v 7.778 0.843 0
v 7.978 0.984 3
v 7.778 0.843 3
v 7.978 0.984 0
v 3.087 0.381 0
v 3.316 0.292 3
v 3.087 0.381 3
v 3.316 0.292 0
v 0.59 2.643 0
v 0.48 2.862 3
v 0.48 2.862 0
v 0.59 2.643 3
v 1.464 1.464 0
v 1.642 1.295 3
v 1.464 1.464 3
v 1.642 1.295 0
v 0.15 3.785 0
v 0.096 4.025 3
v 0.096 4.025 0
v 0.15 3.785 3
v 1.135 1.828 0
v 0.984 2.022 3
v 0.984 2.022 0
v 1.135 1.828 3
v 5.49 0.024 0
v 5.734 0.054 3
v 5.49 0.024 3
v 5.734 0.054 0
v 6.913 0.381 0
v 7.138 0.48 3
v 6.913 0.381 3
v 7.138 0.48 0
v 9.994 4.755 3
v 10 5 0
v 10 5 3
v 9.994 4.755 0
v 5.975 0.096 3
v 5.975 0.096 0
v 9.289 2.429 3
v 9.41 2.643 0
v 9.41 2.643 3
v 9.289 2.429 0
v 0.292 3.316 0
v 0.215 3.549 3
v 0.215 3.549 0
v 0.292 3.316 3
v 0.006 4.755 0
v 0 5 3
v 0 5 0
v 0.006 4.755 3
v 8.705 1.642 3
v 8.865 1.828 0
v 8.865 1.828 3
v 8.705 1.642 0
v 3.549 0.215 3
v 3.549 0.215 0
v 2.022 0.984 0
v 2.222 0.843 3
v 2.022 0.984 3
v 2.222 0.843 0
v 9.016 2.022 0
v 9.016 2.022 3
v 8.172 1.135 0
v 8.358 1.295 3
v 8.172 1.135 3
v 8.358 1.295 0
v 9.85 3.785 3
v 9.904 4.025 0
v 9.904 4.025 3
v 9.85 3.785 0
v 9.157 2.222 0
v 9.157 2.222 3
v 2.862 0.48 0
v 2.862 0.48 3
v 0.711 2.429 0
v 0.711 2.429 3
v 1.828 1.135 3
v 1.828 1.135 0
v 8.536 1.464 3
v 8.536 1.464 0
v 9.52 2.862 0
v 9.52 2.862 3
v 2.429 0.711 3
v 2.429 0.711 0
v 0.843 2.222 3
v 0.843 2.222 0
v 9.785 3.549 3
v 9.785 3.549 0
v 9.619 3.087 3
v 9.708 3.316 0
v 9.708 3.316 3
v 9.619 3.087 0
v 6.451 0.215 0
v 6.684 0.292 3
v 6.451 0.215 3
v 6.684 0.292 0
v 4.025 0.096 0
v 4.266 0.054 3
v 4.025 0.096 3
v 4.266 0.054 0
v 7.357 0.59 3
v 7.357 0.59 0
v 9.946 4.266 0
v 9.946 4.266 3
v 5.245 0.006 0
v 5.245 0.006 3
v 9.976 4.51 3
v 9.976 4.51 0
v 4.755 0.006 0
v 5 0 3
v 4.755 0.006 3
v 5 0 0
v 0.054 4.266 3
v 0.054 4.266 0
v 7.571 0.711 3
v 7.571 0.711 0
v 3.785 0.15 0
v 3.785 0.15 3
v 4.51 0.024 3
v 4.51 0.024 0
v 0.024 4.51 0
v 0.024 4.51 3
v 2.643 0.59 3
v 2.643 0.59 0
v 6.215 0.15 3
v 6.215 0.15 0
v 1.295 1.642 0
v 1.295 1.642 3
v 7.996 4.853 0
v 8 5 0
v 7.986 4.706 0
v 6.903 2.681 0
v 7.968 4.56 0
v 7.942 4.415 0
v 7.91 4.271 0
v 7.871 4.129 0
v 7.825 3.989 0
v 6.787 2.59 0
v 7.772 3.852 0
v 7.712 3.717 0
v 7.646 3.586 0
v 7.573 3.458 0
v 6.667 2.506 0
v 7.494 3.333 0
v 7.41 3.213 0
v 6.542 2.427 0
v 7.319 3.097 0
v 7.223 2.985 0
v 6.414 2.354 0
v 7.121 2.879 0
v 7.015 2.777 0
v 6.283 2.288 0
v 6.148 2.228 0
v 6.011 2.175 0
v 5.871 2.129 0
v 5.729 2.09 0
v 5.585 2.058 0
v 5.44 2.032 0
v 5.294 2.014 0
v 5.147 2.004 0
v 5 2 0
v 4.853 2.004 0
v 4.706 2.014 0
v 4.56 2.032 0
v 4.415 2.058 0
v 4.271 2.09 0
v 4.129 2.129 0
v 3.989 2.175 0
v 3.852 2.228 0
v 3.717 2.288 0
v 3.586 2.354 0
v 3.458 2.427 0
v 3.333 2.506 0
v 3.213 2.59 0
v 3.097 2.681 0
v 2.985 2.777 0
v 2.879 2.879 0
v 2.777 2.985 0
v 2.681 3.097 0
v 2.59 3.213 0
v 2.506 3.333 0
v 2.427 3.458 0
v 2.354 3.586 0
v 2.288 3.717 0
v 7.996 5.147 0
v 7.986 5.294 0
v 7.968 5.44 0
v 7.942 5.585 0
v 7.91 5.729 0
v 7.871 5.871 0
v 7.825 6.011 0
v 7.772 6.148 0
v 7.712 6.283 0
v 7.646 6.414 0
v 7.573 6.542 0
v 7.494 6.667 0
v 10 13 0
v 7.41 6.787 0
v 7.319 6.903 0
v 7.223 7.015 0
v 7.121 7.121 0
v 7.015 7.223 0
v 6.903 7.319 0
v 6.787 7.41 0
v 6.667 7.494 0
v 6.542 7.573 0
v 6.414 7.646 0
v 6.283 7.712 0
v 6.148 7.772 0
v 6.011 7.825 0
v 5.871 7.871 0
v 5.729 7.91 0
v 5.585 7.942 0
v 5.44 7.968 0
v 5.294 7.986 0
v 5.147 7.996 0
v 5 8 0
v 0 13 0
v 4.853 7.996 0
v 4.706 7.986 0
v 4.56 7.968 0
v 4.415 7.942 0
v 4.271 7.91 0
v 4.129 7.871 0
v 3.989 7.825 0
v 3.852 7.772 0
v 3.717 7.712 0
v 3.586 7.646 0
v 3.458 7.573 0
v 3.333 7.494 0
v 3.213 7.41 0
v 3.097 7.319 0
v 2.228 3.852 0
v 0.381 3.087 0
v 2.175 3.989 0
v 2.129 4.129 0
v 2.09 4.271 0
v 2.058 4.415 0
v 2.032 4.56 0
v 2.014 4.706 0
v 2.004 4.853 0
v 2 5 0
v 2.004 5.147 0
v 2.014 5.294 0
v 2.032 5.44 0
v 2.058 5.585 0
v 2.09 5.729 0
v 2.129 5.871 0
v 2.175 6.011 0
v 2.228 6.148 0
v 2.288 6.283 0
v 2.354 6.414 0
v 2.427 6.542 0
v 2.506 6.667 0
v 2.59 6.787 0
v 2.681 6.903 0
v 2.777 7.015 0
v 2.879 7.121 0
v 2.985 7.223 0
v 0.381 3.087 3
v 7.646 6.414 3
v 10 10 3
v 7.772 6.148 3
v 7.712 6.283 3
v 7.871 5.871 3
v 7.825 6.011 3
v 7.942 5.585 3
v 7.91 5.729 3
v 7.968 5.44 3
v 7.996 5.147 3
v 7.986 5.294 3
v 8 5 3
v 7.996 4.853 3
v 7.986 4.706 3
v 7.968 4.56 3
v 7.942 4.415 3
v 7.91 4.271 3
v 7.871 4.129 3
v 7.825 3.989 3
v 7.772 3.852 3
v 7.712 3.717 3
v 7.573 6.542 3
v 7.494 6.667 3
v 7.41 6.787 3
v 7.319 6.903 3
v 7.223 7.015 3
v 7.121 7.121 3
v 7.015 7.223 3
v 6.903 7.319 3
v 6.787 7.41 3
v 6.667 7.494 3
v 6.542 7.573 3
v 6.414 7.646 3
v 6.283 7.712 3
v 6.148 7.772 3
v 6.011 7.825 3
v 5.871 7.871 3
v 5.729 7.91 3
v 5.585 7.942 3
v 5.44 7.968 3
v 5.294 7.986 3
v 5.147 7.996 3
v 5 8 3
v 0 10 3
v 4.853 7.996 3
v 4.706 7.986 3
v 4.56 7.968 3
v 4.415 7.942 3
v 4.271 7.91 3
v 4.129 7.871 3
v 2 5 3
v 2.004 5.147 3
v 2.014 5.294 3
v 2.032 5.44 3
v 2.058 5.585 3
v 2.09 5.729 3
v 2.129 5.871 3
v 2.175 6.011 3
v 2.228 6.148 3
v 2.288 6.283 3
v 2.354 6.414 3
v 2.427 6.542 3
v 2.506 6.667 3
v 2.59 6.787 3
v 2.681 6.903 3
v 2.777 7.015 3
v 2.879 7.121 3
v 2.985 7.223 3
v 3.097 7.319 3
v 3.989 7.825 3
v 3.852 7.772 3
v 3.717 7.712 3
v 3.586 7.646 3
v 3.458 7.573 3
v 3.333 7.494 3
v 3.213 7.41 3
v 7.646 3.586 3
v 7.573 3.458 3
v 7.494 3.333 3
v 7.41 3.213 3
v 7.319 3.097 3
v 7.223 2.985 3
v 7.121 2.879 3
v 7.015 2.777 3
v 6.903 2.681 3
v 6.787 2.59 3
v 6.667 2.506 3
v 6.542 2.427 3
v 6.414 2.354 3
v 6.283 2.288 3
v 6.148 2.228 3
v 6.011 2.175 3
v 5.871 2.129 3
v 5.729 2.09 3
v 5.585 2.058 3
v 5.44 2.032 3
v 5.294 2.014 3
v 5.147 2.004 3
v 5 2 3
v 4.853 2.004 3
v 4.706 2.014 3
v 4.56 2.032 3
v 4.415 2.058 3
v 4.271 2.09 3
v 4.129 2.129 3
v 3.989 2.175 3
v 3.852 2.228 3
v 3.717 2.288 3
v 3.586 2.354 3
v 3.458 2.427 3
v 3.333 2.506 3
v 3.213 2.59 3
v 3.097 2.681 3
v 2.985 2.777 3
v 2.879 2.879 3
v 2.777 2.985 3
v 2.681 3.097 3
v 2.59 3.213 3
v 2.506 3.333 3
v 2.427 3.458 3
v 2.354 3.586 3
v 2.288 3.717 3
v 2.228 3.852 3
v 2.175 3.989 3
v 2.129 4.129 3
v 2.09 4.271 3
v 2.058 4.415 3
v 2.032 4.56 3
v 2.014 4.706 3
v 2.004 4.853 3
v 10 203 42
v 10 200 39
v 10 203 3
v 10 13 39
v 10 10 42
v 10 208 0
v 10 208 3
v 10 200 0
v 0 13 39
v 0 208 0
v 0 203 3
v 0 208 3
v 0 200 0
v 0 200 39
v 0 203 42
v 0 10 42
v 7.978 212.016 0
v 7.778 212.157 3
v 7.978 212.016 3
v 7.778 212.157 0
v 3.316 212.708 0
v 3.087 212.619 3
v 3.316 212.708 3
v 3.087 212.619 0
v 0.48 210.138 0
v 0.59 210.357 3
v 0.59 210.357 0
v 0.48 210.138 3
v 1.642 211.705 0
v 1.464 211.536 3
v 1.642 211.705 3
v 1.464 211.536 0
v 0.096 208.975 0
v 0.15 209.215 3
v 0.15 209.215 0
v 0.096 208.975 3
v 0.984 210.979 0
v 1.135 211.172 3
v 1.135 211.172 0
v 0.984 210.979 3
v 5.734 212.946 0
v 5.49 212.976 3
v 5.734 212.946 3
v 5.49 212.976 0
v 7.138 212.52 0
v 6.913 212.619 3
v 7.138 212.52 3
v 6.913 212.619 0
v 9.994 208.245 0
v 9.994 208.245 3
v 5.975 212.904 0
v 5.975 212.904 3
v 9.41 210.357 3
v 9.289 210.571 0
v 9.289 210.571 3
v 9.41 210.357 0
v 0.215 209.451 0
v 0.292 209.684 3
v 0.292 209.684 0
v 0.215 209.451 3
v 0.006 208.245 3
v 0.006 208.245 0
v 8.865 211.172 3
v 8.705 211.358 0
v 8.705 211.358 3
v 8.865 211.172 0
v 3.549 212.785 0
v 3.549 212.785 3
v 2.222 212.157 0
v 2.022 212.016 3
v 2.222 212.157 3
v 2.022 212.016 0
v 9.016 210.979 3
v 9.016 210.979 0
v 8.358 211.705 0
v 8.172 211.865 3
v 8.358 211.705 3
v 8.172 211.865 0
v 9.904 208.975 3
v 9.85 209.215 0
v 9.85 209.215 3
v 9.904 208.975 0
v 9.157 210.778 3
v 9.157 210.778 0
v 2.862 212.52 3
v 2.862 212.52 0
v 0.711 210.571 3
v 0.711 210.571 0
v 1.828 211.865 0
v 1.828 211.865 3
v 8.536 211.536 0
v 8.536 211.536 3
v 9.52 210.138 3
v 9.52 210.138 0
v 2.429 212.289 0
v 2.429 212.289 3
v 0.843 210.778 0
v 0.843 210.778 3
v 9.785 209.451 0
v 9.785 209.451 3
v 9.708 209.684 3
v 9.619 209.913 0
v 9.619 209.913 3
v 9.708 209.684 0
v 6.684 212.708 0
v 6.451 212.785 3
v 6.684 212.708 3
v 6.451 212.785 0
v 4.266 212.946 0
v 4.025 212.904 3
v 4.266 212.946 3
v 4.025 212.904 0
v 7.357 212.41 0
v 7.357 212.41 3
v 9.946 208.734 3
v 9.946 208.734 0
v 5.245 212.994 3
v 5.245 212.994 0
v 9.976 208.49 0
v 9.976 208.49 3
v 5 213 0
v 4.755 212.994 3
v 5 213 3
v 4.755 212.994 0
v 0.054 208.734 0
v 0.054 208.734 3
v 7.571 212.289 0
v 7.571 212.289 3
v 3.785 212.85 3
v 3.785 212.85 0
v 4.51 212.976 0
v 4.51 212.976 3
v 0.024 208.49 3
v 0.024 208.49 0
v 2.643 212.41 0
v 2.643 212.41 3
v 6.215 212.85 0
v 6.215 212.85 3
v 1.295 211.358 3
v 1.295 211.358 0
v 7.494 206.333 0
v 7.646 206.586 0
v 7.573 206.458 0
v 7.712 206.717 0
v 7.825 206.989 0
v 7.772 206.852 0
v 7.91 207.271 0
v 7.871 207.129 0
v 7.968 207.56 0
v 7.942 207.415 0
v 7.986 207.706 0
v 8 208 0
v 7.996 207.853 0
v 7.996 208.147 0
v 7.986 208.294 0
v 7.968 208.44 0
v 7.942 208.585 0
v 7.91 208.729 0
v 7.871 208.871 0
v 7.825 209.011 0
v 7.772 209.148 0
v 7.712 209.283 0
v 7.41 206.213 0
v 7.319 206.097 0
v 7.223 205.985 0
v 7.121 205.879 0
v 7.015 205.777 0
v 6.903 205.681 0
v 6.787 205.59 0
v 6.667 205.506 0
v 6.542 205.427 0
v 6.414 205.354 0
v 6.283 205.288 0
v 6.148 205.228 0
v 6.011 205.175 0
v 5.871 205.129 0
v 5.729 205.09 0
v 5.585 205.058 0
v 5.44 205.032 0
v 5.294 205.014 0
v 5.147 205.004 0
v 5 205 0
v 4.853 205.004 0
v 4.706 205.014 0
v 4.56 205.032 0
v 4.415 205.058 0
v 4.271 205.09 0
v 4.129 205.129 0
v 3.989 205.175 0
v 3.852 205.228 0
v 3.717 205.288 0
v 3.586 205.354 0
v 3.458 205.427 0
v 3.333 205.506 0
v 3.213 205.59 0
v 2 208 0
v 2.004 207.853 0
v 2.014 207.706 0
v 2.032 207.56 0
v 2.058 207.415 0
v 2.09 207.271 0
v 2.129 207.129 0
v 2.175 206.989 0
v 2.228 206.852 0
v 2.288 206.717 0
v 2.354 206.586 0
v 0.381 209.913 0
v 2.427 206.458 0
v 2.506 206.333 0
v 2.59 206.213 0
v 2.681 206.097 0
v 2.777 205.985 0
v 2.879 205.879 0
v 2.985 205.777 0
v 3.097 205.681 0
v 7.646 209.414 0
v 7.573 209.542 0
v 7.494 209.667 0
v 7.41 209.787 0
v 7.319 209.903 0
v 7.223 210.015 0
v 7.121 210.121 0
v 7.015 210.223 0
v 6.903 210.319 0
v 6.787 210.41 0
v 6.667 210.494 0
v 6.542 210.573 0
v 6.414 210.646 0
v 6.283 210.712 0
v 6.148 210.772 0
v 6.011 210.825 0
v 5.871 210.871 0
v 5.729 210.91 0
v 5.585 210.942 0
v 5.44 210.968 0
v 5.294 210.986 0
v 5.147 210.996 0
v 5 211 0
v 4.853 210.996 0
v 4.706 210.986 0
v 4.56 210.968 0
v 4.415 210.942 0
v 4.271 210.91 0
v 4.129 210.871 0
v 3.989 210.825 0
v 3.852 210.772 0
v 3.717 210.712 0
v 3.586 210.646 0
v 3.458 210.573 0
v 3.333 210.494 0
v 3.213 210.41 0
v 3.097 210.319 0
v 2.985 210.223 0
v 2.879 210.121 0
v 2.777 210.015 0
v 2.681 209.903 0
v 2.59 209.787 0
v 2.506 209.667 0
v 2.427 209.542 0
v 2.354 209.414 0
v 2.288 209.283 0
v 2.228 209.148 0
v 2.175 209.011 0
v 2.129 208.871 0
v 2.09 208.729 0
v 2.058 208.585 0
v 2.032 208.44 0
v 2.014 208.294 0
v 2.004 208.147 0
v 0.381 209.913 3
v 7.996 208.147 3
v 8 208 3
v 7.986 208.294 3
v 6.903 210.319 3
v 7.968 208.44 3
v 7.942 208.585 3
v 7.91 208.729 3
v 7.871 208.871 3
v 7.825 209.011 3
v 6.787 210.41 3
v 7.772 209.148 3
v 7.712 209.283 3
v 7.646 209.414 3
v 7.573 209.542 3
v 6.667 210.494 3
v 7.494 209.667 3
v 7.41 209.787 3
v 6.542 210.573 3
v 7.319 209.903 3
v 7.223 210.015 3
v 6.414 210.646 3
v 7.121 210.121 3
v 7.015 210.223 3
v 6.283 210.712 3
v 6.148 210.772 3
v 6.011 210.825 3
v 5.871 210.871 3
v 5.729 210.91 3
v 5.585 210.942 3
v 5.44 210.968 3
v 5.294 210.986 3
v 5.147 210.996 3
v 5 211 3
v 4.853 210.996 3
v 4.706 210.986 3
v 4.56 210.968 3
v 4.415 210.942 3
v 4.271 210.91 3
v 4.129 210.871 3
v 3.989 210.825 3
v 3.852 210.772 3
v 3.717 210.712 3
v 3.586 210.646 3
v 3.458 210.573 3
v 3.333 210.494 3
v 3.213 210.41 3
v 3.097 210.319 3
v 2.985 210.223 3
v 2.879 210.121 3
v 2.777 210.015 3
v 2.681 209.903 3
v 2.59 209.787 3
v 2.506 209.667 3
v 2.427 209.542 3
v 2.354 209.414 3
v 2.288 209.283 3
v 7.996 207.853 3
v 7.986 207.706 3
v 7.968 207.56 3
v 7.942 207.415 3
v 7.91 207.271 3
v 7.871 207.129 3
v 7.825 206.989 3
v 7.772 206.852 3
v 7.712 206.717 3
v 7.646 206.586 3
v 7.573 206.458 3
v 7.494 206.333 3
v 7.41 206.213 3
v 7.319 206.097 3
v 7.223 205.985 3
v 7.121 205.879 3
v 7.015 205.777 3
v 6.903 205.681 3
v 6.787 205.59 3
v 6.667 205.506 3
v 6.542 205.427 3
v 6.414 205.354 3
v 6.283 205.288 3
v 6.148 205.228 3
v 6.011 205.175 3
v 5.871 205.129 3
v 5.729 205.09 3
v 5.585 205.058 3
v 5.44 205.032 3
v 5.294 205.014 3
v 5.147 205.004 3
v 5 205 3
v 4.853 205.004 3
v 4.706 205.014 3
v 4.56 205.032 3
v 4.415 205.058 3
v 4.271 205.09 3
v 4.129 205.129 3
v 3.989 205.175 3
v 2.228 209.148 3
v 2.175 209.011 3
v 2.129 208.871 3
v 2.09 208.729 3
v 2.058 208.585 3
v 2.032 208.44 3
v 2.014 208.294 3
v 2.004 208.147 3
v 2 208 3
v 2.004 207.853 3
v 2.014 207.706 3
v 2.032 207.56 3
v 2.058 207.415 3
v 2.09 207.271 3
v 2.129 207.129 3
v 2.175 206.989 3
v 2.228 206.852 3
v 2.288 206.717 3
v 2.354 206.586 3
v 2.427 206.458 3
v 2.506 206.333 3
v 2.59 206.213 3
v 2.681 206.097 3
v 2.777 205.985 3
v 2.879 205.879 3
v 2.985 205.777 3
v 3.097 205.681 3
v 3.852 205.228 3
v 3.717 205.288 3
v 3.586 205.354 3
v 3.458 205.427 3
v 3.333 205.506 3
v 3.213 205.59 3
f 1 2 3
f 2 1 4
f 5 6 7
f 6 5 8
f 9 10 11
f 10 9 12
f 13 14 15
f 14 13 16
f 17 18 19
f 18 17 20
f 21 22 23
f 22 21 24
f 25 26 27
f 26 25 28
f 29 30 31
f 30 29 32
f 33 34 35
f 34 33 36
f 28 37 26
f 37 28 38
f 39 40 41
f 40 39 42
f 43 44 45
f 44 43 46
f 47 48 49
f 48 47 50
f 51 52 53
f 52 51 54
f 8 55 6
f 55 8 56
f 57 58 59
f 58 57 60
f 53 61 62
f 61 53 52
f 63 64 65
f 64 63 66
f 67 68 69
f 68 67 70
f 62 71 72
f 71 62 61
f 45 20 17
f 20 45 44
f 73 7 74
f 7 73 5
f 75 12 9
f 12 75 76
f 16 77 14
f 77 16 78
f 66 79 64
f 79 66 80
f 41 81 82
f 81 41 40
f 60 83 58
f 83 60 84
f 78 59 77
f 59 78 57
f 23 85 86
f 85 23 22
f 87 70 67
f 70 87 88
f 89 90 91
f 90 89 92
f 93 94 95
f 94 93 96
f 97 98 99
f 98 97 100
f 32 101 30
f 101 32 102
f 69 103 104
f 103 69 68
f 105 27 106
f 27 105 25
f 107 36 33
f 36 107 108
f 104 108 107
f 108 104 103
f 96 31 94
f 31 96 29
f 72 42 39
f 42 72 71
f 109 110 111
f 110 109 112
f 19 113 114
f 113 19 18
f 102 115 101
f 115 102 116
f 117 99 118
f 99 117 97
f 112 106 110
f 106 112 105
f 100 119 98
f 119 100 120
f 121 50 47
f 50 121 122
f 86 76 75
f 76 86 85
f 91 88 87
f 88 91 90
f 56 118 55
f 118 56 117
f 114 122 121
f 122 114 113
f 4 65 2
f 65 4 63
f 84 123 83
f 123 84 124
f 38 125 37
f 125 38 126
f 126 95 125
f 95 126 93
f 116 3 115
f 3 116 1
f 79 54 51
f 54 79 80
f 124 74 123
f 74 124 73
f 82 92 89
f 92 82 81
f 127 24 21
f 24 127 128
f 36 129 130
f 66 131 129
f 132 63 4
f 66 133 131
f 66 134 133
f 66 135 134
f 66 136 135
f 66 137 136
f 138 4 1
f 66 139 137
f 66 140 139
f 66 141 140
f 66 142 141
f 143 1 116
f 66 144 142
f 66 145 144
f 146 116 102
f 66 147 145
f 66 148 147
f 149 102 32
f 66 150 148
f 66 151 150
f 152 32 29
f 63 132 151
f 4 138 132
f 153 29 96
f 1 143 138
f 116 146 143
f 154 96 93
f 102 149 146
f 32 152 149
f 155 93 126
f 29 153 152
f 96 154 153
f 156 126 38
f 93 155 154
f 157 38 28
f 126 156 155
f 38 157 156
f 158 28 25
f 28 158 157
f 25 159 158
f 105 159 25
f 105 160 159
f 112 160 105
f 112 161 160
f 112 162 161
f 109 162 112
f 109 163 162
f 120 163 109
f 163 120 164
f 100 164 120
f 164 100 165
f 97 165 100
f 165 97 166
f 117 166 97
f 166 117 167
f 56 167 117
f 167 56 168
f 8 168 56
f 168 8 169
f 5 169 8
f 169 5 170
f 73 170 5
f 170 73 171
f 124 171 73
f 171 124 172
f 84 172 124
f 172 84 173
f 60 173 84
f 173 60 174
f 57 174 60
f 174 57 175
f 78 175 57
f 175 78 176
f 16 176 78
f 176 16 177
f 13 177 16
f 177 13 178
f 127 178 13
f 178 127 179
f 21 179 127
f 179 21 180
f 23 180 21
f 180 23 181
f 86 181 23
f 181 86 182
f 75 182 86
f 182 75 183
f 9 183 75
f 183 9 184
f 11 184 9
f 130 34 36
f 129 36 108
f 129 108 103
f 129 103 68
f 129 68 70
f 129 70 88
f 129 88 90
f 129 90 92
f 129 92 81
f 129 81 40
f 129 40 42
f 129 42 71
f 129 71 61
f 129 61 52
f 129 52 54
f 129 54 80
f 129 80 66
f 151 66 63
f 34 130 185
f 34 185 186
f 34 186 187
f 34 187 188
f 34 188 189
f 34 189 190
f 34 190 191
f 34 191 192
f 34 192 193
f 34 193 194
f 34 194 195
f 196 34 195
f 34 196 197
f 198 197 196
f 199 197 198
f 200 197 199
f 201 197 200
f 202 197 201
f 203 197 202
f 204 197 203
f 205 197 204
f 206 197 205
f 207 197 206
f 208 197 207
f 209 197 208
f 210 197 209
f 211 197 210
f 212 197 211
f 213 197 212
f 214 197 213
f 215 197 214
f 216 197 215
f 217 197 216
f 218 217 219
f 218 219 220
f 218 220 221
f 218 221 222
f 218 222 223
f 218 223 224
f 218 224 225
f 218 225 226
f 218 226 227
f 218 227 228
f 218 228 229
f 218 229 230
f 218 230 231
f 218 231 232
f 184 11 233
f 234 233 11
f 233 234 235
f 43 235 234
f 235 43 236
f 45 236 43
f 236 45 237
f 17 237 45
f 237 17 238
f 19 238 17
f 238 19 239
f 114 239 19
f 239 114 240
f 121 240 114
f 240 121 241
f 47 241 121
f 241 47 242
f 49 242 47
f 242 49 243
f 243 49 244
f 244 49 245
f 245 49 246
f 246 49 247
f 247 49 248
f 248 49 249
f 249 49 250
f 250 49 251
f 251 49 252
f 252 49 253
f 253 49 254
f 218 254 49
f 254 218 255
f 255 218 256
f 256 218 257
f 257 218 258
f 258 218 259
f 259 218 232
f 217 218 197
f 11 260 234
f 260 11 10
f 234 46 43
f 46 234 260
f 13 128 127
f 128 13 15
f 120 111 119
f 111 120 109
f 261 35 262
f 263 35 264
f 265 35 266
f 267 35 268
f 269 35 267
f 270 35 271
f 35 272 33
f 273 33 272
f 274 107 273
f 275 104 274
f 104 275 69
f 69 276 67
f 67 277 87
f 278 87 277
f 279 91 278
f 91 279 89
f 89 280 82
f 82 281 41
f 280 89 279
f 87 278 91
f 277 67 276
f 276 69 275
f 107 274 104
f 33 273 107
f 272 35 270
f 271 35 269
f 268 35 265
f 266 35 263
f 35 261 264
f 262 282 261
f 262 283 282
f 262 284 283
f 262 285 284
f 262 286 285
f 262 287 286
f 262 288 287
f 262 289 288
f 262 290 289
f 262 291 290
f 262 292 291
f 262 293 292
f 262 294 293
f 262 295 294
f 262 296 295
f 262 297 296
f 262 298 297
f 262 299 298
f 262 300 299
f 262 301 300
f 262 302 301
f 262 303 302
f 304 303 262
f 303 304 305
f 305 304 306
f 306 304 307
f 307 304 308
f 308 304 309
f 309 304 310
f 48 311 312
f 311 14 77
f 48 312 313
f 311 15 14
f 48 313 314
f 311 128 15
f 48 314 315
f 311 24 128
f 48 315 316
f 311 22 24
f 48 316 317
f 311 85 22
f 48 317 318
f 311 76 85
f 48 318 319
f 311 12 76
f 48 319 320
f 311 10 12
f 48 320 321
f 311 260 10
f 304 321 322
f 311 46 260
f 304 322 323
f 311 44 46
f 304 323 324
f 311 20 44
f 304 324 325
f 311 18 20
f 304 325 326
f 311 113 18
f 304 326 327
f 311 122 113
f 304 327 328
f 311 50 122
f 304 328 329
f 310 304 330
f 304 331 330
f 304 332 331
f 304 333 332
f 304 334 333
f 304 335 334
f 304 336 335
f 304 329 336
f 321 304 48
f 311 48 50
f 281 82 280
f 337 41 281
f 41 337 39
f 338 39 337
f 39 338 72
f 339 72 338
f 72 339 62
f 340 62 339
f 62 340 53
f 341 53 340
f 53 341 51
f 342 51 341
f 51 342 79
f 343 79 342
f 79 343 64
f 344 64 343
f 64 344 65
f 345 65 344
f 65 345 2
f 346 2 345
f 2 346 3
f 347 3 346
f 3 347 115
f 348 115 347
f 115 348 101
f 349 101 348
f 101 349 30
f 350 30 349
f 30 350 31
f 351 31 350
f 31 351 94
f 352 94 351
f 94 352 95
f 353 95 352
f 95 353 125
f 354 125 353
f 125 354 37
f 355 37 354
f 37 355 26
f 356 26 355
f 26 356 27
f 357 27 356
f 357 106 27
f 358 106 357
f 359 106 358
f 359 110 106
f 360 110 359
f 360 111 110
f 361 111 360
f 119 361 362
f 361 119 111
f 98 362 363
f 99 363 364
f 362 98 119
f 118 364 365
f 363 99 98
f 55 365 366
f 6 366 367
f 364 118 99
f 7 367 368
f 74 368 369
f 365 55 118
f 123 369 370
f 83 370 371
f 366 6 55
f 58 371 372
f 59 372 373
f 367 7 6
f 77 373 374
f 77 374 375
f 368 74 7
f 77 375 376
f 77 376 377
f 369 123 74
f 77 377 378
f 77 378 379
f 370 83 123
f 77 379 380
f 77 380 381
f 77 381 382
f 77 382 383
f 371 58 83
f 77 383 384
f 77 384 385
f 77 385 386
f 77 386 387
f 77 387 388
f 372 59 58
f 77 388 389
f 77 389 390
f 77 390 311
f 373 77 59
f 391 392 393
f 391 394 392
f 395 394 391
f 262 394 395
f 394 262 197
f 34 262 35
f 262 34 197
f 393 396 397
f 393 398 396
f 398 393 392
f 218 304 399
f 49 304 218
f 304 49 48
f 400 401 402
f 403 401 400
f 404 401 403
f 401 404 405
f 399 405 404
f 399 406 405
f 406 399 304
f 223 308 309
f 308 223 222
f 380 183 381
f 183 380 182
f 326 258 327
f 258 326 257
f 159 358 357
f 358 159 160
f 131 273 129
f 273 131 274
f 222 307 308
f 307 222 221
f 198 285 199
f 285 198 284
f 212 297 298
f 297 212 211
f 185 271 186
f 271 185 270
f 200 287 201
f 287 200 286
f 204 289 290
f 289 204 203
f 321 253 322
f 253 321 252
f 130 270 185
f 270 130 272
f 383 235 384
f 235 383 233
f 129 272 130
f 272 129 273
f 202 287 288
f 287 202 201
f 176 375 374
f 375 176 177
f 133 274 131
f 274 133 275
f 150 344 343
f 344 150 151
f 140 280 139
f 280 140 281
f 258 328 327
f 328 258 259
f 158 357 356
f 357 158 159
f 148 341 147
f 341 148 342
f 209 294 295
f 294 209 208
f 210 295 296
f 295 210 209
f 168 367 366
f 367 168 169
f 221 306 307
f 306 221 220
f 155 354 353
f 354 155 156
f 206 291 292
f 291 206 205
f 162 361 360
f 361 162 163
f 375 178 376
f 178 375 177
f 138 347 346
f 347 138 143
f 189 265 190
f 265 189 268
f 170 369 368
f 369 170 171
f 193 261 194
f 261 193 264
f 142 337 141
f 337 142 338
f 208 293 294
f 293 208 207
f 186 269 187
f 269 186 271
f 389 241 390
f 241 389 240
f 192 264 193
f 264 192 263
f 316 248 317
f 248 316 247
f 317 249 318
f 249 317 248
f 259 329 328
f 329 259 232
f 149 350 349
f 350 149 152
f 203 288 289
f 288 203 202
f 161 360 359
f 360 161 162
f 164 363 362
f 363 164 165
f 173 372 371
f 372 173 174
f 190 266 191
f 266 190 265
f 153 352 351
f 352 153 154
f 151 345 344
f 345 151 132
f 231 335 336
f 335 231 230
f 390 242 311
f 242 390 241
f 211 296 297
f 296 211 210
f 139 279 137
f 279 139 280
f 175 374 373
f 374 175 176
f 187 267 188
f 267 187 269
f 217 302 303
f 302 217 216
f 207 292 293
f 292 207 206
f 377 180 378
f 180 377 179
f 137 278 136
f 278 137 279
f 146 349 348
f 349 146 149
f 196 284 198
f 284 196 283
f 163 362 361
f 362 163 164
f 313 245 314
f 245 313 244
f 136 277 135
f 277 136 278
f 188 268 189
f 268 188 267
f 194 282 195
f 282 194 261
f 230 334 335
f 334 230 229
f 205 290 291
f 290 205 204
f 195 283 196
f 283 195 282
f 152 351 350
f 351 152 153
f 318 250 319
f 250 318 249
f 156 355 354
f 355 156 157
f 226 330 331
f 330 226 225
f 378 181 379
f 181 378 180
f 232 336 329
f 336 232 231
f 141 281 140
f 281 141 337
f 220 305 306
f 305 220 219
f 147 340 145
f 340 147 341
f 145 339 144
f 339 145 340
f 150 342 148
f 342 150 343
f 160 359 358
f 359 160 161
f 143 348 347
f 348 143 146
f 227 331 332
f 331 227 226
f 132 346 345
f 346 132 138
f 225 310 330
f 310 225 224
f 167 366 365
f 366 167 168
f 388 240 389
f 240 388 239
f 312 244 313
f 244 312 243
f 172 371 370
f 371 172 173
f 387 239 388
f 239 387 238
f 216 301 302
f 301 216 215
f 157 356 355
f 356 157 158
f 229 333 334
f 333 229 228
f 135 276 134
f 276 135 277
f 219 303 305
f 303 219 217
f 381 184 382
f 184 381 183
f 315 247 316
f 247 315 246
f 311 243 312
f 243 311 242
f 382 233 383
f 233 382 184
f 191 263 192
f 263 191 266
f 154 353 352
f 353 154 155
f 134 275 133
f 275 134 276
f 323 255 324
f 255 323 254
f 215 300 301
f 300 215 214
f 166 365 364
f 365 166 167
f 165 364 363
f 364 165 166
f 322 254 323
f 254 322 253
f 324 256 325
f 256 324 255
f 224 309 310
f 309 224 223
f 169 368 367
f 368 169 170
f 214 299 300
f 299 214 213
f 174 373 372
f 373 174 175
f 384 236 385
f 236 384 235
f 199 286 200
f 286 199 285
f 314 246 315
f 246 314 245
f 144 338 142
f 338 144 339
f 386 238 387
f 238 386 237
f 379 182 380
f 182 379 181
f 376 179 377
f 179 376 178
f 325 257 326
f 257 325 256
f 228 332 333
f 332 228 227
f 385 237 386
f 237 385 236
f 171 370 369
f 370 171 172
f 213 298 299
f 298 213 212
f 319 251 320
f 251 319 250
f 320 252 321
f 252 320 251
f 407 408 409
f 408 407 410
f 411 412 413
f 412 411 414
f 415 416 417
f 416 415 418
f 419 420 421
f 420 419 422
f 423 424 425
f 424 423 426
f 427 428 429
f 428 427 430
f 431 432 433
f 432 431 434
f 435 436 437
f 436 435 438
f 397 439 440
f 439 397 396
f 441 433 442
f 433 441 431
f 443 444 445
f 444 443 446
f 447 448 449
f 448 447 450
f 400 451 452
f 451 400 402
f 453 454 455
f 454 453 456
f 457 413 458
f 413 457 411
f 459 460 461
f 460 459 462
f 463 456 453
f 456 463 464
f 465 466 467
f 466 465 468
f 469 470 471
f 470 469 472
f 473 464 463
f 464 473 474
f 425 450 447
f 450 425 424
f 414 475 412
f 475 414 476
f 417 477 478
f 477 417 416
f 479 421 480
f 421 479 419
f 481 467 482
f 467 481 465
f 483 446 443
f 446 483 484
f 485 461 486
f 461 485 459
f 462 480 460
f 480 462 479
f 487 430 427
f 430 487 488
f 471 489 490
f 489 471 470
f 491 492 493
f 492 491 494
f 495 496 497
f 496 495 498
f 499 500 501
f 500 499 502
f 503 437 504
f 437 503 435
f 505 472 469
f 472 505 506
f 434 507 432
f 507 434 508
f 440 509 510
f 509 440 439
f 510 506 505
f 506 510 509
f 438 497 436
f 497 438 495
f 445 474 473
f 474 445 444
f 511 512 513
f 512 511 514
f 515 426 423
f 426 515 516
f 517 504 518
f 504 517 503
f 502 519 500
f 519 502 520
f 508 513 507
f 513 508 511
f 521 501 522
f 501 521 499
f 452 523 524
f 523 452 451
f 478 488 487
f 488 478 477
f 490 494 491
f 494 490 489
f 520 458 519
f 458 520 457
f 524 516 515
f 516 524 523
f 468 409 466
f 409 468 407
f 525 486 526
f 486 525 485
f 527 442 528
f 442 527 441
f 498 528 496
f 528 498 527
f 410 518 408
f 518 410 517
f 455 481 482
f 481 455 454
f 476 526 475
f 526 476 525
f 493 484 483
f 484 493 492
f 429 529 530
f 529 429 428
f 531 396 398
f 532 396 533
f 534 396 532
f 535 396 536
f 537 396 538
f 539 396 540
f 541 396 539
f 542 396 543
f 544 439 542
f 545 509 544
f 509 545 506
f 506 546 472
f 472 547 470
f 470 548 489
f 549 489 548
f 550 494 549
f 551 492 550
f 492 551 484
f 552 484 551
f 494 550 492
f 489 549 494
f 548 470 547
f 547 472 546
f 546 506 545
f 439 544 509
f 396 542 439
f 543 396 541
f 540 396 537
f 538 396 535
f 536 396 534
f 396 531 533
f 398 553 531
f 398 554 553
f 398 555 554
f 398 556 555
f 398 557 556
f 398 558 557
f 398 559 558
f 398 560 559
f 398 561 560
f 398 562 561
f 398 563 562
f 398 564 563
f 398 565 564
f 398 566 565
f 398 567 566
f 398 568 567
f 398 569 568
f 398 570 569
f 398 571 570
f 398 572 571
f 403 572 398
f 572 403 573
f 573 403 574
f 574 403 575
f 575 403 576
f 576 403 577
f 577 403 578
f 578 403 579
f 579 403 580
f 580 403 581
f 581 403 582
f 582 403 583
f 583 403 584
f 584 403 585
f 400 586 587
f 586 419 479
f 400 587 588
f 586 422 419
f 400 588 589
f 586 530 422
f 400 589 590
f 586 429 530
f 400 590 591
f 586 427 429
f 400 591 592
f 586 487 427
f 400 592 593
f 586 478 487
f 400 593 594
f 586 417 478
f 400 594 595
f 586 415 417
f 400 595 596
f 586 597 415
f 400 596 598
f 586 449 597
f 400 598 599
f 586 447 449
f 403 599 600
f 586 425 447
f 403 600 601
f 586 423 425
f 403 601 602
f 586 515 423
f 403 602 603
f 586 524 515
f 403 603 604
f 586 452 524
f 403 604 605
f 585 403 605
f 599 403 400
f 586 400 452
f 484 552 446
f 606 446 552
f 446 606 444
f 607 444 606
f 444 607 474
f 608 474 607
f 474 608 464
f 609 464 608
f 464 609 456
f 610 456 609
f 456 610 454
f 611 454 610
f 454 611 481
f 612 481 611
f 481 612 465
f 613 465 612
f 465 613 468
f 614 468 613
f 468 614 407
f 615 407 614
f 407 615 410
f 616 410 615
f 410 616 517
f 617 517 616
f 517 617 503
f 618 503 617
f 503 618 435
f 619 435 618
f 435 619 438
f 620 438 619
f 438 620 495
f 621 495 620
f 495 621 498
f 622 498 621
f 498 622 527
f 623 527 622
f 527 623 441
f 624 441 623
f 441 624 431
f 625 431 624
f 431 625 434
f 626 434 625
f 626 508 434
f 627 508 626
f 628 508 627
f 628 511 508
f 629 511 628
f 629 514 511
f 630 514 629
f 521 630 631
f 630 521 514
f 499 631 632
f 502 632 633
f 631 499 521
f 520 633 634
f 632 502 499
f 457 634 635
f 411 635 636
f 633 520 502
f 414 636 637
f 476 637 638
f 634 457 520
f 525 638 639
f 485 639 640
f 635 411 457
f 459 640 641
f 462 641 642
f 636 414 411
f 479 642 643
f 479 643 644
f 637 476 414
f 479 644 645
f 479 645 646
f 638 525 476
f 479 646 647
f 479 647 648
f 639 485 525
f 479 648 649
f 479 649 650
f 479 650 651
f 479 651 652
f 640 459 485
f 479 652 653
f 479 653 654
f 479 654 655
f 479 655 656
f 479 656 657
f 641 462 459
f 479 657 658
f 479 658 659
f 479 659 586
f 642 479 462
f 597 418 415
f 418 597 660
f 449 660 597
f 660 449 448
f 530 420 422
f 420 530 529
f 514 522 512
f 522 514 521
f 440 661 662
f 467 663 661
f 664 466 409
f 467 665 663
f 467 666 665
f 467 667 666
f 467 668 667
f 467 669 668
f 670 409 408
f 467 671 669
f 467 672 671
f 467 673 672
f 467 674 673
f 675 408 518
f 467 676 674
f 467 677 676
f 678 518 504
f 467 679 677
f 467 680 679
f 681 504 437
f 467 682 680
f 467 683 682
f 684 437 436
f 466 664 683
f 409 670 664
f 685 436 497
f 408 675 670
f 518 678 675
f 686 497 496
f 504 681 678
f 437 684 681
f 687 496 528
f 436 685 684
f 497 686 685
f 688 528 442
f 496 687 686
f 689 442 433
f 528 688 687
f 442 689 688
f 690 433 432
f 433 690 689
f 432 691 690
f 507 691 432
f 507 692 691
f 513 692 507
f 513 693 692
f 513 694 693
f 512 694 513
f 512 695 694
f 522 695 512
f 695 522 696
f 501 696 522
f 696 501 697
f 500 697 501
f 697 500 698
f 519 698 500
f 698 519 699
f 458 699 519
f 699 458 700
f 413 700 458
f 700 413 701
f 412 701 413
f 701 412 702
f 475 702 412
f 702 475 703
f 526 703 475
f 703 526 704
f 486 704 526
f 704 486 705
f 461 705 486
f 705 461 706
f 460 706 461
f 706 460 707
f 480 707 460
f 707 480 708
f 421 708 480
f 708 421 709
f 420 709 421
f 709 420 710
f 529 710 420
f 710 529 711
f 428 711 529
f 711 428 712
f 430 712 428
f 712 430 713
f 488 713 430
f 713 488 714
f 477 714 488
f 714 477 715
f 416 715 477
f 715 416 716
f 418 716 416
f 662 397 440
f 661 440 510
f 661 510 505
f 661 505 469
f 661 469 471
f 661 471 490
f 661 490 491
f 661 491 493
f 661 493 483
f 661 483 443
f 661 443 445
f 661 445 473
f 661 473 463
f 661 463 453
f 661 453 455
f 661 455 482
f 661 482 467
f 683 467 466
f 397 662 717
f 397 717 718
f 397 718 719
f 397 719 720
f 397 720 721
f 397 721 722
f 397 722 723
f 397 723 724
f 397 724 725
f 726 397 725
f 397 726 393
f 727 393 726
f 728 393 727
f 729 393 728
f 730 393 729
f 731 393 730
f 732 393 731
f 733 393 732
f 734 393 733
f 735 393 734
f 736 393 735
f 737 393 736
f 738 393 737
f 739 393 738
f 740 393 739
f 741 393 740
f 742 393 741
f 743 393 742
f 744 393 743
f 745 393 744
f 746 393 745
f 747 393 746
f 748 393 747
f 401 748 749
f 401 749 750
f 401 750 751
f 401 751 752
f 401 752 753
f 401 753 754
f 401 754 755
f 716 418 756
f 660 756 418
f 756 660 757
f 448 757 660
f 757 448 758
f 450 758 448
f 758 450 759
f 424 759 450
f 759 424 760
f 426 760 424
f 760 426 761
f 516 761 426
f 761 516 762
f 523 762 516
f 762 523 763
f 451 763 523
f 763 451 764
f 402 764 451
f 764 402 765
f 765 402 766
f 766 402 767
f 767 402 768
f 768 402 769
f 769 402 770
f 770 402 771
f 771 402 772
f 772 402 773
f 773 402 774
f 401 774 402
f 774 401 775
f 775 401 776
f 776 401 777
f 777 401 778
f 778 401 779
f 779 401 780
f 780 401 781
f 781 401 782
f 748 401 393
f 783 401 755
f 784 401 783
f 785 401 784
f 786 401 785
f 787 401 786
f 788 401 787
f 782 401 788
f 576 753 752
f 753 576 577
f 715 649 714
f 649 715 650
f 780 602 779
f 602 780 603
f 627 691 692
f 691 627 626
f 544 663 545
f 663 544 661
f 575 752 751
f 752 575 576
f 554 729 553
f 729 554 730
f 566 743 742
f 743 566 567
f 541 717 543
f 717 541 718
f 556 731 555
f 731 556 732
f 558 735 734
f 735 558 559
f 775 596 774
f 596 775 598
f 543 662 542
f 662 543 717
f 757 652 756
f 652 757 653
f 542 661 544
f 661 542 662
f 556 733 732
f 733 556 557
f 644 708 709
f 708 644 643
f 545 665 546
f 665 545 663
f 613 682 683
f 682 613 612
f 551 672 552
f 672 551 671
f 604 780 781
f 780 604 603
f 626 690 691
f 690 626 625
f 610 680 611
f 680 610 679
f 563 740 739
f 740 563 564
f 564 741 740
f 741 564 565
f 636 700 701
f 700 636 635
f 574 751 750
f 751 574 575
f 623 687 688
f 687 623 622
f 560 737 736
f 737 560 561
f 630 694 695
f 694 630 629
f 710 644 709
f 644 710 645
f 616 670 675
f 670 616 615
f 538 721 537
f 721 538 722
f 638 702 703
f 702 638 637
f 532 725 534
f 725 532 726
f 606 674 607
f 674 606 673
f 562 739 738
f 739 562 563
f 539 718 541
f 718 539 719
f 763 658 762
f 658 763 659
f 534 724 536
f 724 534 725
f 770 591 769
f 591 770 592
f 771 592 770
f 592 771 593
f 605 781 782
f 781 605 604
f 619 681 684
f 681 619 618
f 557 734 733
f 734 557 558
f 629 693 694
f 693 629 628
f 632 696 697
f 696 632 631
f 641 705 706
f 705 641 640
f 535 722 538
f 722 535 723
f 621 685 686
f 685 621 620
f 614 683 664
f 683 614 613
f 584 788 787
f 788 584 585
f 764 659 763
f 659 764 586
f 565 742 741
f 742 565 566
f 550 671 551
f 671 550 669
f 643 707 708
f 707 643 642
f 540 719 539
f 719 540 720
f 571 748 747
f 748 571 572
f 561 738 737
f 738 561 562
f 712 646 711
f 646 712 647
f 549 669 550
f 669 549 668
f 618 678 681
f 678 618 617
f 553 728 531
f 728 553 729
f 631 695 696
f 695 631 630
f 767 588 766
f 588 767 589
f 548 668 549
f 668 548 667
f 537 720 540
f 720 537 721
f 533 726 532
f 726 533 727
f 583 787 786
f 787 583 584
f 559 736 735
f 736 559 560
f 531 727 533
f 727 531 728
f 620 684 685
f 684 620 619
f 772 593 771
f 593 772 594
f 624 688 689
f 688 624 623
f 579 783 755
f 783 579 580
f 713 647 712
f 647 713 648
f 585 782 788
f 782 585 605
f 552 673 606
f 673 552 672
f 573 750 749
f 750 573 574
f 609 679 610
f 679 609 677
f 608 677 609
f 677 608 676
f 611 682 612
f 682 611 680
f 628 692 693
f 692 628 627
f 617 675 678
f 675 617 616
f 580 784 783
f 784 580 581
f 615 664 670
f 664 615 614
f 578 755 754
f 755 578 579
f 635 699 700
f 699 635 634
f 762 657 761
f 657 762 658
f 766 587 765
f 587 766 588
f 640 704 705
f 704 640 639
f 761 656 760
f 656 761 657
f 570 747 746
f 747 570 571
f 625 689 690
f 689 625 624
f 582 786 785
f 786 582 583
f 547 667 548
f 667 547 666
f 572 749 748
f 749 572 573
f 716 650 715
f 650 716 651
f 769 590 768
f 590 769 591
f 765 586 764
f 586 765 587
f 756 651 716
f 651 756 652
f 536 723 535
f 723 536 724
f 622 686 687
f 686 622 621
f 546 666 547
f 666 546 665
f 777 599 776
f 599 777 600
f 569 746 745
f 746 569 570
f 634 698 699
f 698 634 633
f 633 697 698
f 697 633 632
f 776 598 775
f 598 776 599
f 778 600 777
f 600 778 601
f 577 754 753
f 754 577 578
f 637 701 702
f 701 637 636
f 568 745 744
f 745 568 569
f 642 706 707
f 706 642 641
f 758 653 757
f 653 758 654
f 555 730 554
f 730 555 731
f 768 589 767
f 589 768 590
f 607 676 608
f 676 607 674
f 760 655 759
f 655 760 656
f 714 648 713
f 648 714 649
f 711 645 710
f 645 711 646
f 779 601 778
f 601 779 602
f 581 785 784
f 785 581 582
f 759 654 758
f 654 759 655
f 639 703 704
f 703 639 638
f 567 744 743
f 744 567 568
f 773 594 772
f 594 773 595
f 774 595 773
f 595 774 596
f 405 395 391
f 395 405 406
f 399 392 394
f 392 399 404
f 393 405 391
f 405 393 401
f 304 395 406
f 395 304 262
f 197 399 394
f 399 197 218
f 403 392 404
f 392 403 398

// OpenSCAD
router_width = 190;
router_height = 39;
holder_width = 10;
holder_thickness = 3;
holder_hole = 6;

$fn = 128;

module sideHole() {
  translate([0,holder_width/2,0]) difference() {
    // Make the side bit.
    union() {
      translate([holder_width/2,0,0]) cylinder(d=holder_width, h=holder_thickness);
      cube([holder_width, holder_width-holder_thickness, holder_thickness]);
    }

    // Difference out the hole.
    translate([holder_width/2,0,-1]) cylinder(d=holder_hole,h=holder_thickness+2);
  }
}

module bracket() {
  union() {
    // Bar going across the router
    translate([0,holder_width,router_height]) cube([holder_width, router_width+holder_thickness, holder_thickness]);

    // Bars going down to screw holes
    translate([0,holder_width,0]) cube([holder_width,holder_thickness,router_height+holder_thickness]);
    translate([0,router_width+holder_width,0]) cube([holder_width,holder_thickness,router_height+holder_thickness]);
  }
}

sideHole();
translate([0,router_width+holder_width*2+holder_thickness,0]) mirror([0,1,0]) sideHole();
bracket();
